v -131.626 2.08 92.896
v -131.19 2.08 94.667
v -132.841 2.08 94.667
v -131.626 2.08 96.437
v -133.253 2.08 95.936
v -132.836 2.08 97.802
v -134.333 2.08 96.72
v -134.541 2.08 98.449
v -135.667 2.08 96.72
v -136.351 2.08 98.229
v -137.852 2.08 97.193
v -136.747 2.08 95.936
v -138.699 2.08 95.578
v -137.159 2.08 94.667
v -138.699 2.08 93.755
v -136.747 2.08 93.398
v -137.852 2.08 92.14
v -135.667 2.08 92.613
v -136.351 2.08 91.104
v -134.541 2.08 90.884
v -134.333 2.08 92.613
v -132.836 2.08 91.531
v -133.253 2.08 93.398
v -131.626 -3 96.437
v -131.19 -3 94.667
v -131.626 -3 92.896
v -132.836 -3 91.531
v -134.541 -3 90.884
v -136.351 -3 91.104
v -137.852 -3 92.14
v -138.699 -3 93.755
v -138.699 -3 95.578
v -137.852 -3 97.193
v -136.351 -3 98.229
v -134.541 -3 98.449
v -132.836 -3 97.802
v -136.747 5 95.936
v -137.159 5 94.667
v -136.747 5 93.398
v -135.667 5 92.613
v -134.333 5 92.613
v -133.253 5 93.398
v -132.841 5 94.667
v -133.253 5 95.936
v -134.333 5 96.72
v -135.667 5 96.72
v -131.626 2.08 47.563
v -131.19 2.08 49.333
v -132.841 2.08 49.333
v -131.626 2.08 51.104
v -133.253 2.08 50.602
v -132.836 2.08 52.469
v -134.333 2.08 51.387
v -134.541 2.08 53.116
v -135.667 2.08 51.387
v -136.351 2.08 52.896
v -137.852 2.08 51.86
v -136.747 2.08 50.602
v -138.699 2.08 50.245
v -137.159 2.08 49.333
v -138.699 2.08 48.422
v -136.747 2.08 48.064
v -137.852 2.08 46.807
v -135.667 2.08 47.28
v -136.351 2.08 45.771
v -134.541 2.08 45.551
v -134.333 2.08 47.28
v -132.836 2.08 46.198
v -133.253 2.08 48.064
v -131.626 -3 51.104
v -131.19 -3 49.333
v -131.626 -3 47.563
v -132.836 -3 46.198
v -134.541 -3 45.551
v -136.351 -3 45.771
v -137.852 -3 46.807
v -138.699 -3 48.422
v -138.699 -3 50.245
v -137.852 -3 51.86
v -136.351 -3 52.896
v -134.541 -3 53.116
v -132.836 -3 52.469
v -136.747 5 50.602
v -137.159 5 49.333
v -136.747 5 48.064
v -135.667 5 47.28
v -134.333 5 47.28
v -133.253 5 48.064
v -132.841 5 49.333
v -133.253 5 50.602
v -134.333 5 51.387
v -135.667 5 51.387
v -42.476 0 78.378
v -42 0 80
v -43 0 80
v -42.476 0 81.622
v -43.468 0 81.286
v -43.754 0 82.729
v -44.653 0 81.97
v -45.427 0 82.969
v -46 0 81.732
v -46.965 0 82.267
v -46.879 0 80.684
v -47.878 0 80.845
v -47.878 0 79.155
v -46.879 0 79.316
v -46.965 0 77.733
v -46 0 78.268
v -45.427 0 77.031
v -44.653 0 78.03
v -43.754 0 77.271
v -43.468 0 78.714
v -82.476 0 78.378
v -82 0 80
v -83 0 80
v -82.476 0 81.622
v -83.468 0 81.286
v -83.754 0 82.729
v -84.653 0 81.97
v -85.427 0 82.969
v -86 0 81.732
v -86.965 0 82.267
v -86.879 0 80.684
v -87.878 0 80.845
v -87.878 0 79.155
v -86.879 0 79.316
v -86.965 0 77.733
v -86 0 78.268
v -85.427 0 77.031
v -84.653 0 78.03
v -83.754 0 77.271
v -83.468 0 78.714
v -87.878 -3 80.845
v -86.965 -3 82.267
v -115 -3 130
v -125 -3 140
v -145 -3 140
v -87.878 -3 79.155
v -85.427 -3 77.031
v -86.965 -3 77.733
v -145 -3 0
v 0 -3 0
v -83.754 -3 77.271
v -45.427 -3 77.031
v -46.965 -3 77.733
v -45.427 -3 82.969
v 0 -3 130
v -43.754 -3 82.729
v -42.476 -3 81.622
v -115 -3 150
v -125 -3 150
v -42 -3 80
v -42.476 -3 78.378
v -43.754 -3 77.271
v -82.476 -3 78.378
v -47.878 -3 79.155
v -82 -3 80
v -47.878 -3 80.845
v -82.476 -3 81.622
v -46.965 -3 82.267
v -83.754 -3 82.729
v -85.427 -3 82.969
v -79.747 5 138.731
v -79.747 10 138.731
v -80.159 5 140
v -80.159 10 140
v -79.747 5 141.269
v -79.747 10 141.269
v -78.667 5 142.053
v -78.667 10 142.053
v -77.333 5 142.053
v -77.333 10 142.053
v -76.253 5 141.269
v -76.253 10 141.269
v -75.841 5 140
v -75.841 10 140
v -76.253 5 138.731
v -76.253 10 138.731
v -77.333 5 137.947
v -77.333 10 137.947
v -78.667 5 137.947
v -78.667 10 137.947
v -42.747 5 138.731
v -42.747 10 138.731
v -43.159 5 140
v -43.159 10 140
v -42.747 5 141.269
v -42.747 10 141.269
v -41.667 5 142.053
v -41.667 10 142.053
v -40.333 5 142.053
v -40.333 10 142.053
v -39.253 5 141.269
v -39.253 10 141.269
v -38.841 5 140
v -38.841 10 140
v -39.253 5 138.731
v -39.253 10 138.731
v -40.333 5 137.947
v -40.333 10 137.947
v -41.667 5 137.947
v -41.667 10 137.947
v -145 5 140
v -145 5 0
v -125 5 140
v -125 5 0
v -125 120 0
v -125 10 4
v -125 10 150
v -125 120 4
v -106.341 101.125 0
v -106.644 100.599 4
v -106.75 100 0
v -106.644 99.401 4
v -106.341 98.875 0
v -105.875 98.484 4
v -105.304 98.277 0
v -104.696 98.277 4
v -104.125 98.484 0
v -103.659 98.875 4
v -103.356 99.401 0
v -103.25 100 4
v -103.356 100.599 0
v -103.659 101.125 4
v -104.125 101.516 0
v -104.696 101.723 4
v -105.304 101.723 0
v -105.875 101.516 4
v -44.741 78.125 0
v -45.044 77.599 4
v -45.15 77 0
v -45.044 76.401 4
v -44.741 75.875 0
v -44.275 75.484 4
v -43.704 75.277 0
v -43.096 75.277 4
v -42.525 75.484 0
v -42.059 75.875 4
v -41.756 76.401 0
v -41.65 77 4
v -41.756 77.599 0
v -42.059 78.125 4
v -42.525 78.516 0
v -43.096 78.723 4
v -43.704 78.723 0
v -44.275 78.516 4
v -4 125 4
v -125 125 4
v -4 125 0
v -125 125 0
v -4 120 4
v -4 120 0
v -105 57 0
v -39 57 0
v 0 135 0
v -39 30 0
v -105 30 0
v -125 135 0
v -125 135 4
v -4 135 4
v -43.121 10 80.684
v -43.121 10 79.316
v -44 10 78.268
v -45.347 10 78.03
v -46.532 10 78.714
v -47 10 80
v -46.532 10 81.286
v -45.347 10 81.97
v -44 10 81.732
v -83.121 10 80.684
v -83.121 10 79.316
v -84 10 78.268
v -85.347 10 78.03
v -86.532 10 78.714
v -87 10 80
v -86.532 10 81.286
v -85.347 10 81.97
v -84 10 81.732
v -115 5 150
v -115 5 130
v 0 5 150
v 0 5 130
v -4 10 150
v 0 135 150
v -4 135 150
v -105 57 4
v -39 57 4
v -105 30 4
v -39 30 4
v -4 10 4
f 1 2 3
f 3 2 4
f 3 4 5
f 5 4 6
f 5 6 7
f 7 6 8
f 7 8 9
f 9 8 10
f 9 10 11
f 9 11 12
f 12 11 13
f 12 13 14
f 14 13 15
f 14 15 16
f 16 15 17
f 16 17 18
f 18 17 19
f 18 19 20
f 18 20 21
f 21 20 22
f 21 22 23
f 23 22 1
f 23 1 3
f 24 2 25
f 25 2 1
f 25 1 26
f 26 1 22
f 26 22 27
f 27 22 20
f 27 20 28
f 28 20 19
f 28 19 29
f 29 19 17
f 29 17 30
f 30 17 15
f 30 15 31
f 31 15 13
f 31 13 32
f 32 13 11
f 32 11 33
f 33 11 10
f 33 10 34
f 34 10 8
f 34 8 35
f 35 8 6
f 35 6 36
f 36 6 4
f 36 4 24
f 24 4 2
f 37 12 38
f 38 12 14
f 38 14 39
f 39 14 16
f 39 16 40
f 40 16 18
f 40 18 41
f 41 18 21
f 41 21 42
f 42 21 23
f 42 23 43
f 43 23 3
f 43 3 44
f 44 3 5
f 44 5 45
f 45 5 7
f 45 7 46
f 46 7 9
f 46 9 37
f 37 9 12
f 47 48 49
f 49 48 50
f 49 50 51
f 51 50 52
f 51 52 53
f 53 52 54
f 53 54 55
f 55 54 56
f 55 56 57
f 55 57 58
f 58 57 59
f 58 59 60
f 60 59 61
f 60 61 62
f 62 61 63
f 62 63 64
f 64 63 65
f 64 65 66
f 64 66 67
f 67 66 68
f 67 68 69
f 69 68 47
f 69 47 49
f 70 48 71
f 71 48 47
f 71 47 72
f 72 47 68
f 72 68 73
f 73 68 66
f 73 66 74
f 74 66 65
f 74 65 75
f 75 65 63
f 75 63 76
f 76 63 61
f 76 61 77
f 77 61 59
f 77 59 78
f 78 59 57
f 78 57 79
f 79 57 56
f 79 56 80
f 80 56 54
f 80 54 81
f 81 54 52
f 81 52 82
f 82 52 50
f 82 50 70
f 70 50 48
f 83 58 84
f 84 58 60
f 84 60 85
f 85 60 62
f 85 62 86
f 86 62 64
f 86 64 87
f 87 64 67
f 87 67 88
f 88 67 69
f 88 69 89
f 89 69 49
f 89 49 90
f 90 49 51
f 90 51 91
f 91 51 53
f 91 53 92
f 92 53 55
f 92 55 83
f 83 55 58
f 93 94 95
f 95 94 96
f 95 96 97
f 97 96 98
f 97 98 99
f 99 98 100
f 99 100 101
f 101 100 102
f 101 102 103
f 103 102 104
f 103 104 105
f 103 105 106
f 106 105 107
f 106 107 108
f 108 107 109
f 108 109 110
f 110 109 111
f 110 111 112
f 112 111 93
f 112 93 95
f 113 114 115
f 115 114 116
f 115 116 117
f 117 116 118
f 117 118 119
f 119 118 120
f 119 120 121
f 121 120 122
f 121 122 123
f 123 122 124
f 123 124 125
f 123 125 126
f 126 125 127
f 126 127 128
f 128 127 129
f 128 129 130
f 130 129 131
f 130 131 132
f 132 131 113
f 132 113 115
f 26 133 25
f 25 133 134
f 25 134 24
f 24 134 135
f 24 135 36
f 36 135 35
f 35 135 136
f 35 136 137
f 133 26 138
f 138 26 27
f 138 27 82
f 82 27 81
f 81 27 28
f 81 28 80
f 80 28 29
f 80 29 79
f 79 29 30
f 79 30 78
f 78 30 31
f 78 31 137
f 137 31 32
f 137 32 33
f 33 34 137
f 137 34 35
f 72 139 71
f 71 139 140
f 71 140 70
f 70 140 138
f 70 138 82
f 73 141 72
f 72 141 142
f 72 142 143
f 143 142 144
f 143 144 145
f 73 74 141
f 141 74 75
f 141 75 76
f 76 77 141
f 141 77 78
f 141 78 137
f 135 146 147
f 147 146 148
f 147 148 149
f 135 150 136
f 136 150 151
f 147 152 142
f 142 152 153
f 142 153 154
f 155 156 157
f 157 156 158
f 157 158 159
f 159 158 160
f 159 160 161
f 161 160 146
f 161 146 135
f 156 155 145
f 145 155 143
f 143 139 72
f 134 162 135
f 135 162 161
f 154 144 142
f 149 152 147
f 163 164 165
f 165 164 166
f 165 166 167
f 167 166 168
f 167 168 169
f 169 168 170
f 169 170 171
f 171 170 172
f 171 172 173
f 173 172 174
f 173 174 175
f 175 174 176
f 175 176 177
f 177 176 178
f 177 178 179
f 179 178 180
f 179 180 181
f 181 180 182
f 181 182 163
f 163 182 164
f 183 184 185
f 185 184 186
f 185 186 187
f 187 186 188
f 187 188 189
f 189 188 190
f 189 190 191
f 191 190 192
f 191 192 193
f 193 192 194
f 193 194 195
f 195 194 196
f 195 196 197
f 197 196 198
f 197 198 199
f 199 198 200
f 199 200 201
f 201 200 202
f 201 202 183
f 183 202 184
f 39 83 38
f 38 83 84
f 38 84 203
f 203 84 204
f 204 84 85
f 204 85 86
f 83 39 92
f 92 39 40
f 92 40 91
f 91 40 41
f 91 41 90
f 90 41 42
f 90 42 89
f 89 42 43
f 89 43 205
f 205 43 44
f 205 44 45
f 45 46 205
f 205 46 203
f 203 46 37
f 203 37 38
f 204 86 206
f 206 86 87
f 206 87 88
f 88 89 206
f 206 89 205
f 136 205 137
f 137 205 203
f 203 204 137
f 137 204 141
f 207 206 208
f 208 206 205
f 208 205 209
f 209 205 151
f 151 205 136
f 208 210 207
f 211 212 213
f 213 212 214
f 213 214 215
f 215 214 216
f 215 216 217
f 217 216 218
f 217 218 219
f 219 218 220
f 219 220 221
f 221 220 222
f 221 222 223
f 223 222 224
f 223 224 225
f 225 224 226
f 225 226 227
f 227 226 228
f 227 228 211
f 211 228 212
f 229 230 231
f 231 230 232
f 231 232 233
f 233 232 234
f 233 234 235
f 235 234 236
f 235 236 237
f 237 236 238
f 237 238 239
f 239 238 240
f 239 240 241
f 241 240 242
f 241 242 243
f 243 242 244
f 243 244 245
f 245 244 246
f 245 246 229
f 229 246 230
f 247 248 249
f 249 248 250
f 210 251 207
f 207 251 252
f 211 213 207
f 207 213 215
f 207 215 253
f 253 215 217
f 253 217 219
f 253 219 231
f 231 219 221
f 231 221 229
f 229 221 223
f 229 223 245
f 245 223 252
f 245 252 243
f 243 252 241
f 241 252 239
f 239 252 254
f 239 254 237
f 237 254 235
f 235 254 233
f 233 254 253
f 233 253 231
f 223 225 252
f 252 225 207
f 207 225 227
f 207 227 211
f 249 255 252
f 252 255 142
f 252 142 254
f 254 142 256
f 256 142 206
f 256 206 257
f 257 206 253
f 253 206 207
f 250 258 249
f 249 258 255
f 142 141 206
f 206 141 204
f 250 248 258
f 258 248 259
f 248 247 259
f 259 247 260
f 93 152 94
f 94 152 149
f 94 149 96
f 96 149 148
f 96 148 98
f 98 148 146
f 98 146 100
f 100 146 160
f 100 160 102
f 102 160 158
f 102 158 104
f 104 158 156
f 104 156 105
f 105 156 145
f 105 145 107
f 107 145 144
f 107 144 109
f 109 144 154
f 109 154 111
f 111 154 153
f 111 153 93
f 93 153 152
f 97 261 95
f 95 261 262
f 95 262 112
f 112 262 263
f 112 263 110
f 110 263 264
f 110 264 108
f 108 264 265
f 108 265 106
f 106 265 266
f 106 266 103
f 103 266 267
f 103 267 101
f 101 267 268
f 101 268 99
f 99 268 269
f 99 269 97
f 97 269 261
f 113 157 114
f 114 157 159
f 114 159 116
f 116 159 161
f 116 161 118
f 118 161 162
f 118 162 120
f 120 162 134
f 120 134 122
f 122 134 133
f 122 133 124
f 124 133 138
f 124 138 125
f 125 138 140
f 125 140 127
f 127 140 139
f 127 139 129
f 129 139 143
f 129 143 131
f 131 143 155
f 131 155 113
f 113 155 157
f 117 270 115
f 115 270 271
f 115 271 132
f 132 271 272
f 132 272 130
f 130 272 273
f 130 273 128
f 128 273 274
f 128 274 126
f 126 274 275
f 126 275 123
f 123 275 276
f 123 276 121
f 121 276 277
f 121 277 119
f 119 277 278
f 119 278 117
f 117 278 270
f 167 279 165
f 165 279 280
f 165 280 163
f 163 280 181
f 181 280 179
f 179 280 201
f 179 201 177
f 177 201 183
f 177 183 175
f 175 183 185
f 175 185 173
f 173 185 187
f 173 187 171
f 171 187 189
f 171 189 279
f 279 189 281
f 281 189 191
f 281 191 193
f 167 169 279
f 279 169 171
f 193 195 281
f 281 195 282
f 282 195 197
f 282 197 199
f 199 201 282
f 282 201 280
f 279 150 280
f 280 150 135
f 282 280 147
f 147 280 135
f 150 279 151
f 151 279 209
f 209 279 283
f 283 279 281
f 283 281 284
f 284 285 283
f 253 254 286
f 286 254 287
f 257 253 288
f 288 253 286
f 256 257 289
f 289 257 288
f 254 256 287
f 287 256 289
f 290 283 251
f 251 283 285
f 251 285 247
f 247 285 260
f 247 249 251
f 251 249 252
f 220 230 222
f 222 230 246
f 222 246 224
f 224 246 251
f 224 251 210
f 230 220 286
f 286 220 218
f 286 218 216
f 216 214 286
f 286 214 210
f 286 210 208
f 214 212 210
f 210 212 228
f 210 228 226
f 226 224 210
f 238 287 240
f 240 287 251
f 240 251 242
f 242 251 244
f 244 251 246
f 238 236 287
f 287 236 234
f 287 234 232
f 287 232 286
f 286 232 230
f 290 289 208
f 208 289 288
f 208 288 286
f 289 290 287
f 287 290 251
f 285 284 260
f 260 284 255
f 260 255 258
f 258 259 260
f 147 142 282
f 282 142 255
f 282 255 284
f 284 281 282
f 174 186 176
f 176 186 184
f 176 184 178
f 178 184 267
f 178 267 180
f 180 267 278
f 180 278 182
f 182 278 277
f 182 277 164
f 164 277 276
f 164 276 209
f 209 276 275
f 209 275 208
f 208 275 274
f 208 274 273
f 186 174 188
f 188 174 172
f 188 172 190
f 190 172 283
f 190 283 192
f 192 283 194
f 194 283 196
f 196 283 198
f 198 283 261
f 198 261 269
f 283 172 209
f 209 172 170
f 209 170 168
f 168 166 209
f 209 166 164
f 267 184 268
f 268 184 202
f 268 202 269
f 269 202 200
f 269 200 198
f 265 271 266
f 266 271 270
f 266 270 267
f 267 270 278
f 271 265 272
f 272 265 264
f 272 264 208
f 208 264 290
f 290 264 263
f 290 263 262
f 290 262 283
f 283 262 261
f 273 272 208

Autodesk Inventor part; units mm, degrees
ref_plane "YZ Plane" through (0, 0, 0) normal (1, 0, 0) x (0, 1, 0)
ref_plane "XZ Plane" through (0, 0, 0) normal (0, 1, 0) x (-1, 0, 0)
ref_plane "XY Plane" through (0, 0, 0) normal (0, 0, 1) x (1, 0, 0)
sketch "Sketch1" plane through (0, 0, 0) normal (0, 1, 0) x (-1, 0, 0)
  line L0 (0, 0) -> (125, 0)
  line L1 (125, 0) -> (125, 150)
  line L2 (125, 150) -> (0, 150)
  line L3 (0, 150) -> (0, 0)
  dimension "d0" = 125
  dimension "d1" = 150
extrude "Extrusion1" add sketch "Sketch1" along normal blind 10
sketch "Sketch2" plane through (0, 10, 0) normal (0, 1, 0) x (1, 0, 0)
  line L0 (-125, -150) -> (0, -150) projected
  line L1 (0, -150) -> (-4, -150)
  line L2 (-4, -150) -> (-4, -4)
  line L3 (-4, -4) -> (-125, -4)
  line L4 (-125, 0) -> (-125, -150) projected
  line L5 (0, -150) -> (0, 0) projected
  line L6 (0, 0) -> (-125, 0) projected
  line L7 (-125, 0) -> (-125, -150) projected
  line L8 (-125, -150) -> (0, -150) projected
  dimension "d4" = 4
  dimension "d5" = 146
extrude "Extrusion2" add sketch "Sketch2" along normal blind 125 contours L2 L3 L4 L6 L5 L0
sketch "Sketch4" plane through (-125, 10, 4) normal (0, 0, 1) x (1, 0, 0)
  line L0 (0, -10) -> (0, 0) projected
  line L1 (0, 0) -> (0, 20)
  line L2 (0, -10) -> (0, 125) projected
  line L3 (0, 20) -> (20, 20)
  line L4 (20, 20) -> (86, 20)
  line L5 (86, 20) -> (86, 47)
  line L6 (86, 47) -> (20, 47)
  line L7 (20, 47) -> (20, 20)
  line L8 (20, 47) -> (20, 67)
  line L9 (20, 67) -> (20, 90)
  line L10 (20, 90) -> (20, 67)
  line L11 (20, 67) -> (81.6, 67)
  point P0 (125, -10)
  point P1 (0, -5)
  dimension "d11" = 20
  dimension "d12" = 20
  dimension "d13" = 66
  dimension "d14" = 27
  dimension "d15" = 20
  dimension "d55" = 23
  dimension "d56" = 61.6
extrude "Extrusion4" cut sketch "Sketch4" against normal blind 10
sketch "Sketch7" plane through (-125, 0, 150) normal (0, 0, 1) x (1, 0, 0)
  line L0 (125, 0) -> (0, 0) projected
  line L1 (125, 0) -> (125, 5)
  line L2 (125, 0) -> (125, 135) projected
  line L3 (125, 5) -> (10, 5)
  line L4 (10, 5) -> (10, 0)
  line L5 (10, 0) -> (125, 0)
  dimension "d32" = 5
  dimension "d33" = 115
extrude "Extrusion6" cut sketch "Sketch7" against normal blind 20
sketch "Sketch9" plane through (0, 0, 0) normal (0, -1, 0) x (1, 0, 0)
  line L0 (0, 130) -> (-115, 130) projected
  line L1 (0, 130) -> (-65, 130)
  line L2 (-65, 130) -> (-65, 80)
  line L3 (-65, 80) -> (-45, 80)
  line L4 (-45, 80) -> (-85, 80)
  point P0 (0, 0)
  dimension "d40" = 65
  dimension "d41" = 50
  dimension "d42" = 20
  dimension "d43" = 40
hole "Hole2" at (-45, 0, 80) at (-85, 0, 80) direction (0, 1, 0) diameter 4 end through all counterbore diameter 6 counterbore depth 3
sketch "Sketch10" plane through (0, 135, 0) normal (0, 0, -1) x (-1, 0, 0)
  line L0 (0, 0) -> (125, 0) projected
  line L1 (125, 0) -> (125, -10)
  line L2 (125, -125) -> (125, 0) projected
  line L3 (125, -10) -> (4, -10)
  line L4 (4, -125) -> (4, 0) projected
  line L5 (4, -10) -> (4, -15)
  line L6 (4, -15) -> (125, -15)
  line L7 (125, -15) -> (125, -10)
  line L8 (125, -16.3986) -> (125, -10)
  line L9 (125, -10) -> (125, -15)
  point P0 (0, -135)
  dimension "d51" = 10
  dimension "d52" = 5
extrude "Extrusion8" cut sketch "Sketch10" against normal blind 10 contours L3 L2 L6 L4
hole "Hole3" at (-105, 100, 4) at (-43.4, 77, 4) direction (0, 0, -1) diameter 3.5 end through all
sketch "Sketch12" plane through (-125, 0, 0) normal (-1, 0, 0) x (0, 0, 1)
  line L0 (150, 0) -> (140, 0)
  line L1 (140, 0) -> (140, 5)
  line L2 (150, 5) -> (130, 5) projected
  line L3 (140, 5) -> (0, 5)
  line L4 (0, 0) -> (0, 120) projected
  line L5 (0, 0) -> (0, 5)
  line L6 (4, 120) -> (0, 120) projected
  line L7 (0, 0) -> (0, 120) projected
  line L8 (0, 0) -> (150, 0) projected
  line L9 (150, 0) -> (150, 10) projected
  line L10 (4, 10) -> (150, 10) projected
  line L11 (4, 10) -> (4, 120) projected
  dimension "d77" = 10
extrude "Extrusion9" add sketch "Sketch12" along normal blind 20 contours L8 L4 L3 L2 L1
sketch "Sketch11" plane through (0, 10, 0) normal (0, 1, 0) x (1, 0, 0)
  line L0 (-115, -150) -> (-115, -130) projected
  line L1 (-115, -150) -> (-78, -150)
  line L2 (-125, -150) -> (-4, -150) projected
  line L3 (-78, -150) -> (-78, -140)
  line L4 (-78, -140) -> (-41, -140)
  line L5 (-125, -140) -> (-125, -150) projected
  line L6 (-125, -140) -> (-125, -94.6667)
  line L7 (-125, -4) -> (-125, -150) projected
  line L8 (-125, -94.6667) -> (-135, -94.6667)
  line L9 (-135, -94.6667) -> (-135, -49.3333)
  point P0 (0, 0)
  dimension "d67" = 37
  dimension "d68" = 10
  dimension "d69" = 37
  dimension "d80" = 45.3333
  dimension "d81" = 45.3333
hole "Hole4" at (-78, 10, 140) at (-41, 10, 140) direction (0, -1, 0) diameter 4.318 end through all
hole "Hole5" at (-135, 10, 94.6667) at (-135, 10, 49.3333) direction (0, -1, 0) diameter 3.5 end through all
sketch "Sketch13" plane through (0, 0, 0) normal (0, -1, 0) x (1, 0, 0)
  circle A0 centre (-135, 94.6667) radius 1.75 projected
  circle A1 centre (-135, 49.3333) radius 1.75 projected
  circle A2 centre (-45, 80) radius 3 projected
  circle A3 centre (-85, 80) radius 3 projected
  line L0 (0, 130) -> (-115, 130) projected
  line L1 (-115, 130) -> (-115, 150) projected
  line L2 (-125, 150) -> (-115, 150) projected
  line L3 (-125, 140) -> (-125, 150) projected
  line L4 (-125, 140) -> (-145, 140) projected
  line L5 (-145, 0) -> (-145, 140) projected
  line L6 (0, 0) -> (-145, 0) projected
  line L7 (0, 130) -> (0, 0) projected
extrude "Extrusion10" add sketch "Sketch13" along normal blind 3
sketch "Sketch14" plane through (-45, 3, 80) normal (0, -1, 0) x (1, 0, 0)
  circle A0 centre (0, 0) radius 3 projected
  circle A1 centre (0, 0) radius 2 projected
  circle A2 centre (-40, 0) radius 3 projected
  circle A3 centre (-40, 0) radius 2 projected
  point P0 (45, -80)
extrude "Extrusion11" add sketch "Sketch14" along normal blind 3
sketch "Sketch15" plane through (0, -3, 0) normal (0, -1, 0) x (1, 0, 0)
  circle A0 centre (-135, 49.3333) radius 1.75 projected
  circle A1 centre (-135, 94.6667) radius 1.75 projected
  point P0 (0, 0)
hole "Hole6" at (-135, -3, 94.6667) at (-135, -3, 49.3333) direction (0, 1, 0) diameter 4.318 end through all counterbore diameter 7.62 counterbore depth 5.08
properties part number "Quarter 3"
